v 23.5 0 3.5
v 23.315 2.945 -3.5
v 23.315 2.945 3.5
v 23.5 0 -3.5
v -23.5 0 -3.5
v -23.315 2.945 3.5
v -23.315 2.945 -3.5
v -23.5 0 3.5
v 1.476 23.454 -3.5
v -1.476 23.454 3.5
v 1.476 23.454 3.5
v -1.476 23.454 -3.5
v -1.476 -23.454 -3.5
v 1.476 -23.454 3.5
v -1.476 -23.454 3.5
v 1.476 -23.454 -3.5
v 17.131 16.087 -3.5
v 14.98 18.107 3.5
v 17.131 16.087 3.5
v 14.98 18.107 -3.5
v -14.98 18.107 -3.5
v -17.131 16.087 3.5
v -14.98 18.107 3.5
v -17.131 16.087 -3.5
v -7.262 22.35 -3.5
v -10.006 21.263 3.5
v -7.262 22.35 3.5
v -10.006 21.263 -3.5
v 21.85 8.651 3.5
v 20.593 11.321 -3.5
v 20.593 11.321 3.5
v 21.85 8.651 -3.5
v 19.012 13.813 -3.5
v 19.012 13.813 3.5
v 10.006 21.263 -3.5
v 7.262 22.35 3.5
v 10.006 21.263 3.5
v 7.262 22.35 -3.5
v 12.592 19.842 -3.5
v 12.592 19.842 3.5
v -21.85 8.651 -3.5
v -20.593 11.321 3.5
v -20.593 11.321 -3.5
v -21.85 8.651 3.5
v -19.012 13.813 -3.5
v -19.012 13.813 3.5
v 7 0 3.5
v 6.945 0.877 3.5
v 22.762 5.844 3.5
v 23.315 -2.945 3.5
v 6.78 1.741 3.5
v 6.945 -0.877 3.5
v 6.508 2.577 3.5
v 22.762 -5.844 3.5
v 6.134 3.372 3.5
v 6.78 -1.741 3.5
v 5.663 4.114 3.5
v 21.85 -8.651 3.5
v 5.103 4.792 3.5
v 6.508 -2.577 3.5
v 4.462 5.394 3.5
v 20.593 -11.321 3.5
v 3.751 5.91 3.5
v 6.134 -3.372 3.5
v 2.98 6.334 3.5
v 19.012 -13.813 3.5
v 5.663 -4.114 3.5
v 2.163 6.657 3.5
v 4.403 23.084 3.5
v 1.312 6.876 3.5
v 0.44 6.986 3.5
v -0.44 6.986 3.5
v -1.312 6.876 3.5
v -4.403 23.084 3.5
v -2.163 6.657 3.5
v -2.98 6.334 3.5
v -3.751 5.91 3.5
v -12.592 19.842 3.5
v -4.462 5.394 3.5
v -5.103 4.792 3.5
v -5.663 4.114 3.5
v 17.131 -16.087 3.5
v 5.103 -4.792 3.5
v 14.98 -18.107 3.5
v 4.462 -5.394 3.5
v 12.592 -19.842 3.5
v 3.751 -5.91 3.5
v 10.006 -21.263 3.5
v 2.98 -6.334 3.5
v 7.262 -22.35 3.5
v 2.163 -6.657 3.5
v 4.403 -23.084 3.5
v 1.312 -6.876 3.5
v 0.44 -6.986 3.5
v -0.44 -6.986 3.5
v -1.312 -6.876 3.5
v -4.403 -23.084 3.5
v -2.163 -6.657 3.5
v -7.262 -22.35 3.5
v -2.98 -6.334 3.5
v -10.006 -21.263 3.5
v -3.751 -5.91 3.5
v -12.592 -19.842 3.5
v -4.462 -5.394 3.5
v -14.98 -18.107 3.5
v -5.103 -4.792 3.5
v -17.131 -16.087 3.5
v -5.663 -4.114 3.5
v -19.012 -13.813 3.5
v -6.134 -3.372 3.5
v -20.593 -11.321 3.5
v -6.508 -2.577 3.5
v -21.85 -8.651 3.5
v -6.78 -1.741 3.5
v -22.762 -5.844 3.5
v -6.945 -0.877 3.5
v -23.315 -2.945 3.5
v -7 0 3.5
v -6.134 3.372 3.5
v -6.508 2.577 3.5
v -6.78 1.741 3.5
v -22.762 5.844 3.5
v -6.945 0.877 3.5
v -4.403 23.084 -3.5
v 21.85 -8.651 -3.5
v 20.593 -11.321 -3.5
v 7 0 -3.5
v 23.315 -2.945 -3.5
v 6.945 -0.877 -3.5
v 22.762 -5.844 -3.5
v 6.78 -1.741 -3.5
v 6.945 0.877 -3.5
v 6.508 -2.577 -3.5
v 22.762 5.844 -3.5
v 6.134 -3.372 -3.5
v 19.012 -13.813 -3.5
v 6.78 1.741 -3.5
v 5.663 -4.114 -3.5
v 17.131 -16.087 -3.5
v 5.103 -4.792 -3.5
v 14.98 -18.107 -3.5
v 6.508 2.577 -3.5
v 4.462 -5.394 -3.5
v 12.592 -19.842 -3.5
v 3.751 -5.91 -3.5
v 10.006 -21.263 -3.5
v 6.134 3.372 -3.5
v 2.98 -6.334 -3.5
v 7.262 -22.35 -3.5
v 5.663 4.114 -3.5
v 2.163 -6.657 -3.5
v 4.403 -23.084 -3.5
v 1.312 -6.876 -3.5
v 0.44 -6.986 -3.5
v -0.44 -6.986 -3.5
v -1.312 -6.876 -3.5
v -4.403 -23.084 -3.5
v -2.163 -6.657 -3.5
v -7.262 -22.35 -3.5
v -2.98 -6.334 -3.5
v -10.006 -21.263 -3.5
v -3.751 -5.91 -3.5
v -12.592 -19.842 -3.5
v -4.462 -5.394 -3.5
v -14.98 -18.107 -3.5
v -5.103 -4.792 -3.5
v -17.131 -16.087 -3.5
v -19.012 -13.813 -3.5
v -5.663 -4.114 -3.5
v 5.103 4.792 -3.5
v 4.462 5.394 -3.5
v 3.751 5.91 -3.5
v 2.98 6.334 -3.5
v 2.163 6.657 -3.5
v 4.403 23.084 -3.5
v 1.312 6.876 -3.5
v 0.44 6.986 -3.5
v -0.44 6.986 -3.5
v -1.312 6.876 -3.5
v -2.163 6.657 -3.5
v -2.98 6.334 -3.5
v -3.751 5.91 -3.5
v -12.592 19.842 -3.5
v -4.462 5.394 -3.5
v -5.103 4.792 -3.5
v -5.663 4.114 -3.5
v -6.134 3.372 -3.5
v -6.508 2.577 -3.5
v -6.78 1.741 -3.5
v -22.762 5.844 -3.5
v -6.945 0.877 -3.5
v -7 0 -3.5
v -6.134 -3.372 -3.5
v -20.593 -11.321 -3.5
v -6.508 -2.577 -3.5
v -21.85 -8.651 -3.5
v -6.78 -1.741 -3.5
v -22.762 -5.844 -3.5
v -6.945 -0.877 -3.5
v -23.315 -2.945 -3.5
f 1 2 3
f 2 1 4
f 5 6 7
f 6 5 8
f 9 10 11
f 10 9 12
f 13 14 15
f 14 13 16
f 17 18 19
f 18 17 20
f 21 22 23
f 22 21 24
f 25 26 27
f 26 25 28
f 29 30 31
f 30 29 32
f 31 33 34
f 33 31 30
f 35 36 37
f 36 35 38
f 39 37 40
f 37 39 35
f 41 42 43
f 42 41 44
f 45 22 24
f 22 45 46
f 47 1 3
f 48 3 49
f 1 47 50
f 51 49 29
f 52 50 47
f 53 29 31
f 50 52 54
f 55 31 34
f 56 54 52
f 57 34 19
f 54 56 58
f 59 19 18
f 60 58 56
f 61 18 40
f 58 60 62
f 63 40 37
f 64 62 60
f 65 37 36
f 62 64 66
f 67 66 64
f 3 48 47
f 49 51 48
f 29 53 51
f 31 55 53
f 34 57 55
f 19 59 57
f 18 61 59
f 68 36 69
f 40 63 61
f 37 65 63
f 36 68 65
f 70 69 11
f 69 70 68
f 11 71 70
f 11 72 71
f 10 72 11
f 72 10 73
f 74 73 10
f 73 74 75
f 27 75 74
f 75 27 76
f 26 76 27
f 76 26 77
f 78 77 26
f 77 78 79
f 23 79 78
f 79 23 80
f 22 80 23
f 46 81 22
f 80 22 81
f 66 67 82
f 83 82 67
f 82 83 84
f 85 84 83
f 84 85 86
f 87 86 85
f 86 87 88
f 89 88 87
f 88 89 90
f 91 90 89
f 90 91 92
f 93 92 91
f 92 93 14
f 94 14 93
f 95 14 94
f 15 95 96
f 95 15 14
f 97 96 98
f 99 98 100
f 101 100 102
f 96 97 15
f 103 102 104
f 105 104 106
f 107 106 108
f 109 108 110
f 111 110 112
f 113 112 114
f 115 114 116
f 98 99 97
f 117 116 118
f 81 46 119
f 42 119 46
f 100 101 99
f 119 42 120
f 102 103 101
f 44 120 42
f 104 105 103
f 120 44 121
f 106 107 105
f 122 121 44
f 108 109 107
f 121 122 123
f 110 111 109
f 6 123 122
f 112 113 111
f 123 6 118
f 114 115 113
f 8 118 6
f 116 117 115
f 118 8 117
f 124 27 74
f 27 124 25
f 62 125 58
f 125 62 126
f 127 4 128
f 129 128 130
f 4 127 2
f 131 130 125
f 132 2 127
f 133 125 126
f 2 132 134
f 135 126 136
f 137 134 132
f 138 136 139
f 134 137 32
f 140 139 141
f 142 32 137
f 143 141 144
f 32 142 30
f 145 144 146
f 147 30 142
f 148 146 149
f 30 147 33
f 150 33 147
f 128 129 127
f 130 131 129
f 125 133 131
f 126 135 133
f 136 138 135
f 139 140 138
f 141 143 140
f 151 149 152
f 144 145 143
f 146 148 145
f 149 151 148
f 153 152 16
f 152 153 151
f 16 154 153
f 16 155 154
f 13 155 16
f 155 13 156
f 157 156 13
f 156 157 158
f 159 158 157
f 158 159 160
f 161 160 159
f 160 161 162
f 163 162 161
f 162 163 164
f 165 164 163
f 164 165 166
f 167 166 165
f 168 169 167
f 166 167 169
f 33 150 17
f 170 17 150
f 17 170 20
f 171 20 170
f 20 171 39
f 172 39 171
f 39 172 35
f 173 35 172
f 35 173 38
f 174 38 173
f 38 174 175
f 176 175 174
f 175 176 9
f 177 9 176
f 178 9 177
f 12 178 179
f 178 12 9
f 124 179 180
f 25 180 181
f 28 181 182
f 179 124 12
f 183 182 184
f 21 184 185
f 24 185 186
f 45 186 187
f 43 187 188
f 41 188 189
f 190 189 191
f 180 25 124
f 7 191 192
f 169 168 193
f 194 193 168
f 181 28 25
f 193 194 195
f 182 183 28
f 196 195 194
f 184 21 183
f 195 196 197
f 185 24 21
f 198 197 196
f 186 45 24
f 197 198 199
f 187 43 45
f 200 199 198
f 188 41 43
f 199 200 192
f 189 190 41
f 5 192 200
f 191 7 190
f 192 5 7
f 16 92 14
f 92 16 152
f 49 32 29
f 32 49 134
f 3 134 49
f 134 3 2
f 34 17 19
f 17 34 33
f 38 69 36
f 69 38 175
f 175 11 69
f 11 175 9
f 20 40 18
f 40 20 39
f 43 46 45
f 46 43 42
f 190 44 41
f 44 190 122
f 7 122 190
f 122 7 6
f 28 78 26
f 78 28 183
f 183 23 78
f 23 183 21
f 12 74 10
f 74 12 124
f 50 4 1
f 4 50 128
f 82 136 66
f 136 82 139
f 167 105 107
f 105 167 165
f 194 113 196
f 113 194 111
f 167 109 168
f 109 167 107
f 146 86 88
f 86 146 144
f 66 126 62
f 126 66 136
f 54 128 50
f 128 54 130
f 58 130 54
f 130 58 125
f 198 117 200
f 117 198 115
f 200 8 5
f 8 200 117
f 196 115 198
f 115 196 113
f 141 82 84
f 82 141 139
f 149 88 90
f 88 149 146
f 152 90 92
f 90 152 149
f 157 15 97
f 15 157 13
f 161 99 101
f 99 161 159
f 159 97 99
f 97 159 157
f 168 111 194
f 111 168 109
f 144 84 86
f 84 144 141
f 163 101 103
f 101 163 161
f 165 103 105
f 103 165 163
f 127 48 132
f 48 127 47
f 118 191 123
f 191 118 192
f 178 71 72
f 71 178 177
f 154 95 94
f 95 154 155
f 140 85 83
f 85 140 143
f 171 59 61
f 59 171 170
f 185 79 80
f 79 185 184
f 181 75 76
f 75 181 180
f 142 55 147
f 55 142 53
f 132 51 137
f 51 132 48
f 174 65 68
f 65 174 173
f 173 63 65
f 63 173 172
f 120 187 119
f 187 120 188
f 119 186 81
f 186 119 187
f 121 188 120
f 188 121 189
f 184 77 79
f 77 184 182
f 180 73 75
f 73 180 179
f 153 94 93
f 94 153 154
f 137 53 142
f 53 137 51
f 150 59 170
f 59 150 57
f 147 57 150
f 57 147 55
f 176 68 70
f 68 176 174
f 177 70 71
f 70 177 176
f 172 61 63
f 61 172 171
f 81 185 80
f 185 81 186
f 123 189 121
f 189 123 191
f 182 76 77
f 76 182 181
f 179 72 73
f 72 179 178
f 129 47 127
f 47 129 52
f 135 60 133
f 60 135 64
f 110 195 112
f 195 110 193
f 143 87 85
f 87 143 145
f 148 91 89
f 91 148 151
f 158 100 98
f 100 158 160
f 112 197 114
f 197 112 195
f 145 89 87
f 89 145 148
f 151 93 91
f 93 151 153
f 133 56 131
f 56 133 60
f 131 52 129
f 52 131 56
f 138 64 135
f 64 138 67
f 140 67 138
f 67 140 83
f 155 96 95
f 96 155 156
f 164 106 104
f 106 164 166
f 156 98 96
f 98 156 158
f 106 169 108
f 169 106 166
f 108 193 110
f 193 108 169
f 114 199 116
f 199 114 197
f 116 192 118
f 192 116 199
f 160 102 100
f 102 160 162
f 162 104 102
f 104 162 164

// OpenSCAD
$fn = 50;


difference() {
	union() {
		translate(v = [0, 0, -3.5000000000]) {
			cylinder(h = 7, r = 23.5000000000);
		}
	}
	union() {
		translate(v = [0, 0, -100.0000000000]) {
			cylinder(h = 200, r = 7);
		}
	}
}
